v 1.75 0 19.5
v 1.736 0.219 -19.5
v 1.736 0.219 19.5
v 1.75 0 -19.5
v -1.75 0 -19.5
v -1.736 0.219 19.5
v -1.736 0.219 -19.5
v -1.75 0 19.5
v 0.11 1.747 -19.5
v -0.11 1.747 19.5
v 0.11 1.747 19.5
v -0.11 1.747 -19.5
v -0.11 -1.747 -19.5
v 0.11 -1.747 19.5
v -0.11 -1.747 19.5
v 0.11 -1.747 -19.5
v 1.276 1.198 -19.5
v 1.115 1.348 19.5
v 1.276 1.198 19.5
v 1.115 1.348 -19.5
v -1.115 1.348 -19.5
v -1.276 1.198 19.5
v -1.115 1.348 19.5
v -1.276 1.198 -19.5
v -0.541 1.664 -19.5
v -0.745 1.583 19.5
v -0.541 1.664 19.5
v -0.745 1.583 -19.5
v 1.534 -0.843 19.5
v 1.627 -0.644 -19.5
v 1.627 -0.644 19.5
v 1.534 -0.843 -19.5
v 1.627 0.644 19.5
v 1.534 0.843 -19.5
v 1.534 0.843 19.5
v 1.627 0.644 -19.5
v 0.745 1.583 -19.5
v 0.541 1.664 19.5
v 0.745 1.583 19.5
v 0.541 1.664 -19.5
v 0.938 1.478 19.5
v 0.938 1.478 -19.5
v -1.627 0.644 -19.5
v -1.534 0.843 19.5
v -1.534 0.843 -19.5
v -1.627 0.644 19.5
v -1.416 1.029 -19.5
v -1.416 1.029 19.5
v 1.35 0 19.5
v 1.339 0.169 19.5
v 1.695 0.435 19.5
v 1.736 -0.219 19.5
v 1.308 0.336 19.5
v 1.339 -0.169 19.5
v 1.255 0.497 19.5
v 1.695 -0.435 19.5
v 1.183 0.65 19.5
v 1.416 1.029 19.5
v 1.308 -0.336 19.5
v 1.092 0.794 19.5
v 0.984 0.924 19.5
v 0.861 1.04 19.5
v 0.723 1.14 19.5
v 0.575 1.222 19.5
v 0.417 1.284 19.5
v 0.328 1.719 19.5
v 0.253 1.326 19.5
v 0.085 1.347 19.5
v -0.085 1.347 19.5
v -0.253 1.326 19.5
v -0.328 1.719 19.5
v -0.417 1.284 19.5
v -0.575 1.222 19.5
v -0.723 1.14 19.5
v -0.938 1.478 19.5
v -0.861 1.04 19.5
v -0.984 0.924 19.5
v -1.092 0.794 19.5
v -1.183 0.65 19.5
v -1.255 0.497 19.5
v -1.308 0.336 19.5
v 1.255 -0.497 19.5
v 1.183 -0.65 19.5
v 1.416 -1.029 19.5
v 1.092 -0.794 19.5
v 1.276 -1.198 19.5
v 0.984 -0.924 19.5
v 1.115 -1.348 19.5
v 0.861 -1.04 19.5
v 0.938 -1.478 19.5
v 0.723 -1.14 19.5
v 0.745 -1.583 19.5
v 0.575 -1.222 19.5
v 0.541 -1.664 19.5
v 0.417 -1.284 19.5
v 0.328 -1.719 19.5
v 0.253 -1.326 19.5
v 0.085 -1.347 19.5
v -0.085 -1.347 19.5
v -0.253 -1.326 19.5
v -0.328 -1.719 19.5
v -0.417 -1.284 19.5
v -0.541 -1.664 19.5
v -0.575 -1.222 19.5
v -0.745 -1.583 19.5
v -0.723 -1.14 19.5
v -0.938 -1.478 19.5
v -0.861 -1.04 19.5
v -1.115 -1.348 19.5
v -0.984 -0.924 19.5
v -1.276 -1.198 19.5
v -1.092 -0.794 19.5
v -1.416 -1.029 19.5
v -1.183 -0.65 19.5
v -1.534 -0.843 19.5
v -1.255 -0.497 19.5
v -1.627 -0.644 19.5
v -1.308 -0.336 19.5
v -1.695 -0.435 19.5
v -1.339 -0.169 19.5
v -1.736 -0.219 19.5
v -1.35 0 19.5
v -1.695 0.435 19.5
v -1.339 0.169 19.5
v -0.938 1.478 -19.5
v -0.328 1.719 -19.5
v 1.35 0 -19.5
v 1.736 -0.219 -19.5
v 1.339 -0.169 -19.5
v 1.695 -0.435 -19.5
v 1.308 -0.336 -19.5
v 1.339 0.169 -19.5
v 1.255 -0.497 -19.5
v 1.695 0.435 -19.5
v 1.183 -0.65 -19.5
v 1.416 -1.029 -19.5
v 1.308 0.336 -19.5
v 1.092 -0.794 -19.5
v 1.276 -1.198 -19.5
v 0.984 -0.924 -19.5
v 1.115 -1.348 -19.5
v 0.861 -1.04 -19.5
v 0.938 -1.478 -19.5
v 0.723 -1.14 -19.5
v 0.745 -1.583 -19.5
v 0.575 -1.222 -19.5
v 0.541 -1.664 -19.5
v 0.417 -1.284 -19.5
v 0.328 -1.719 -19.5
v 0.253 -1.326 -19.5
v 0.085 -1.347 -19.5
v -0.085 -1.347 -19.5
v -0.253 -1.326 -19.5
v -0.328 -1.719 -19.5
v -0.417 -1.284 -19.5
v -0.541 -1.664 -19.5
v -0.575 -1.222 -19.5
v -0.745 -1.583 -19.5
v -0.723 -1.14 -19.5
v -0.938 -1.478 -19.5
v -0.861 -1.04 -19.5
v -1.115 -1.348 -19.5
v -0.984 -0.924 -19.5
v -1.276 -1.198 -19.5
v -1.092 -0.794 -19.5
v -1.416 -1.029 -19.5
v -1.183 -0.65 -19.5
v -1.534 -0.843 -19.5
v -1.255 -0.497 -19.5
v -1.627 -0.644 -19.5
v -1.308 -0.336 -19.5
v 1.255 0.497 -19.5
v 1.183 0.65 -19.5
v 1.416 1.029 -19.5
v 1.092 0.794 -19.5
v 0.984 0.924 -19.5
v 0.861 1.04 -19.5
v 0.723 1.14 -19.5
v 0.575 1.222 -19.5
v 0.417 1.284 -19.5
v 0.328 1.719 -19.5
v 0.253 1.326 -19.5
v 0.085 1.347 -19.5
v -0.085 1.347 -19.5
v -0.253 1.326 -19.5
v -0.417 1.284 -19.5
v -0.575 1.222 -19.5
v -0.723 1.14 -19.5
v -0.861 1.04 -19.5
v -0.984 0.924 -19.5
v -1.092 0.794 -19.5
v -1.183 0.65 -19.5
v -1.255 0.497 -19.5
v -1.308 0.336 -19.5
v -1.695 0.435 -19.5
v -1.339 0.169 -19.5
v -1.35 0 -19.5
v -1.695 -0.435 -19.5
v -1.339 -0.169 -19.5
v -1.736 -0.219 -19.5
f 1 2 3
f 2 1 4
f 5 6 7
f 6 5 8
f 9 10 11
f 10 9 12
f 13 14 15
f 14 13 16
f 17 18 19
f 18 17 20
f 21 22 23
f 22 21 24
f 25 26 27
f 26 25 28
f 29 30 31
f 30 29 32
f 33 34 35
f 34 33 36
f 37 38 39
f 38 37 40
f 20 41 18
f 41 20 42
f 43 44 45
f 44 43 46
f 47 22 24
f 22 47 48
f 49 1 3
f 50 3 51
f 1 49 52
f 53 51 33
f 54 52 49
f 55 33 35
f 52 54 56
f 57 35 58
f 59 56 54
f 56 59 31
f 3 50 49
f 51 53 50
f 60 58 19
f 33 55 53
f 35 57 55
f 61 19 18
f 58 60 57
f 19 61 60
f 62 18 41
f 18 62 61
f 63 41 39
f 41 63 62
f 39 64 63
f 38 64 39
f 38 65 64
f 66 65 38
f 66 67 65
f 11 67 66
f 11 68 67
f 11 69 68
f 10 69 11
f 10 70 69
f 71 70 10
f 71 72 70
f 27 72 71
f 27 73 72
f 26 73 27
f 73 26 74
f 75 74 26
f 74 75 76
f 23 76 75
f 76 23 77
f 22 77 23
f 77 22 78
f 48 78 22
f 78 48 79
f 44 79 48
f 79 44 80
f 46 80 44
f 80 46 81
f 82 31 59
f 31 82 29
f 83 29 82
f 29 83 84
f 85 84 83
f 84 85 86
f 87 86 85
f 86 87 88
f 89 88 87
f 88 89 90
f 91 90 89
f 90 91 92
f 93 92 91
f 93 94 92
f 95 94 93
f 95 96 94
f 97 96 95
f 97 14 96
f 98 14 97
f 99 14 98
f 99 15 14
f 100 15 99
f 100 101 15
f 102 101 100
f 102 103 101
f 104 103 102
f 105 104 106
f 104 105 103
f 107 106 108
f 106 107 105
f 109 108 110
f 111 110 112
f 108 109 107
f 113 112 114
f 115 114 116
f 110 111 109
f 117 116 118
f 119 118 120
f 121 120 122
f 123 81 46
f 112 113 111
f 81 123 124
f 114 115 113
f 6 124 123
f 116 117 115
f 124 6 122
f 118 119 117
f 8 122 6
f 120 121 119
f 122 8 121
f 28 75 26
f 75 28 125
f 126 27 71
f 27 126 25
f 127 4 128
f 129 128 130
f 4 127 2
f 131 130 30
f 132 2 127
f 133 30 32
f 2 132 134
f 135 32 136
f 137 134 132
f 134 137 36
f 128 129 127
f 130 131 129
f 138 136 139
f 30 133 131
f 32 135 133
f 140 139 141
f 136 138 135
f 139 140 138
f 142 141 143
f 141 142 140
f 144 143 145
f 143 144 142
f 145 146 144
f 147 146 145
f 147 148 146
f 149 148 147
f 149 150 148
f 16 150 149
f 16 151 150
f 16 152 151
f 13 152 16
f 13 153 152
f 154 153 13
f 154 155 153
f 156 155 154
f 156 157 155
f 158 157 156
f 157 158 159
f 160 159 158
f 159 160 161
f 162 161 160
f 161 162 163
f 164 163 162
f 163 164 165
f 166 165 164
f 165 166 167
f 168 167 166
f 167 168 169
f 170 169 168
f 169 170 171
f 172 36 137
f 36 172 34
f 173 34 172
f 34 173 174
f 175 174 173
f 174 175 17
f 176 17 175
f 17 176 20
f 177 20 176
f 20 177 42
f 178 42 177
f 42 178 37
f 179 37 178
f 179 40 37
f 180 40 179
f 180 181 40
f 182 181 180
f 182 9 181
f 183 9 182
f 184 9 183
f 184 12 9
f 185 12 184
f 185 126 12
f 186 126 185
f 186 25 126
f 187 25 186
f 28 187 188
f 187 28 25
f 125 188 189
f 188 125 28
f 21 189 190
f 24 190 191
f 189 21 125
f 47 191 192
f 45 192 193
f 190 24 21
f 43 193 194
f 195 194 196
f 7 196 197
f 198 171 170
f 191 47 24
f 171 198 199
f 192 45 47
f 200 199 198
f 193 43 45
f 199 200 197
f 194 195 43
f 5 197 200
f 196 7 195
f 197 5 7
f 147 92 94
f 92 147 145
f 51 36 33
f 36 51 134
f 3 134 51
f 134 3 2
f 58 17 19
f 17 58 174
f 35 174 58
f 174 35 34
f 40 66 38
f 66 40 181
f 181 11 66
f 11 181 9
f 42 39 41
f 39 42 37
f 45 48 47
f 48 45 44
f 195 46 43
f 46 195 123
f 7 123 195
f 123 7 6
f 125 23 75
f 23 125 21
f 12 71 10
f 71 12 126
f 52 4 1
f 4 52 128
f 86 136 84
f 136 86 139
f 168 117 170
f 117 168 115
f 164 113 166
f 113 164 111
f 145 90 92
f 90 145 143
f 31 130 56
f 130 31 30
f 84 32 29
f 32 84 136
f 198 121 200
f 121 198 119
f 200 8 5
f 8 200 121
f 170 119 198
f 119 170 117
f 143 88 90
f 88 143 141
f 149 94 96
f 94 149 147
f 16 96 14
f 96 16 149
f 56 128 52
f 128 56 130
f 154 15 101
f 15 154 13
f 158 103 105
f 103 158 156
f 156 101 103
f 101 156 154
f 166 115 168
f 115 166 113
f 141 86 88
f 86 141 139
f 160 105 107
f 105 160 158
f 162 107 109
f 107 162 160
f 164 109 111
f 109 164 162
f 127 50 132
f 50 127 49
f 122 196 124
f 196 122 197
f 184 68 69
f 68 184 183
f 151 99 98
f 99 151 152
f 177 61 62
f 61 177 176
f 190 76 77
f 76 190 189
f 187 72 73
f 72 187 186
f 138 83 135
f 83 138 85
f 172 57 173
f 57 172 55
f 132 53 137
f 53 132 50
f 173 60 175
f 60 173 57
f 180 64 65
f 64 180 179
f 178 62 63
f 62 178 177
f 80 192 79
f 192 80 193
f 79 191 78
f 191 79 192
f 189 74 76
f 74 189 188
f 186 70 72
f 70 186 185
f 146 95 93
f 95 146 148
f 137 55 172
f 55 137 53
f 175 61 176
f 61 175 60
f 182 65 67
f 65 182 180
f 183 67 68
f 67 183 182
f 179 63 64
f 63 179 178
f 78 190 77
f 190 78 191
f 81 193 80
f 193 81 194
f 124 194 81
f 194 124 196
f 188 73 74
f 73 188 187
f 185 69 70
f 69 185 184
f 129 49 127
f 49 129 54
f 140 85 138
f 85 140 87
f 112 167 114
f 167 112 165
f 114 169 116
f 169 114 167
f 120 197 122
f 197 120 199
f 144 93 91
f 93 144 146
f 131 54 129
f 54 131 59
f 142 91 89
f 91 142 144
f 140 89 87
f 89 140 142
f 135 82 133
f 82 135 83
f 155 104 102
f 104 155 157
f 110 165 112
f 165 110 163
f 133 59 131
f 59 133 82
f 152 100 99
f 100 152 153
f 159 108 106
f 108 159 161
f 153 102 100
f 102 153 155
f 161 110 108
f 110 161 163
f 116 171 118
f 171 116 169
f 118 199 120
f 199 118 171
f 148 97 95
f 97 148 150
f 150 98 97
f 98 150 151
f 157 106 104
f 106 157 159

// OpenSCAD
$fn = 50;


difference() {
	union() {
		translate(v = [0, 0, -19.5000000000]) {
			cylinder(h = 39, r = 1.7500000000);
		}
	}
	union() {
		translate(v = [0, 0, -100.0000000000]) {
			cylinder(h = 200, r = 1.3500000000);
		}
	}
}
